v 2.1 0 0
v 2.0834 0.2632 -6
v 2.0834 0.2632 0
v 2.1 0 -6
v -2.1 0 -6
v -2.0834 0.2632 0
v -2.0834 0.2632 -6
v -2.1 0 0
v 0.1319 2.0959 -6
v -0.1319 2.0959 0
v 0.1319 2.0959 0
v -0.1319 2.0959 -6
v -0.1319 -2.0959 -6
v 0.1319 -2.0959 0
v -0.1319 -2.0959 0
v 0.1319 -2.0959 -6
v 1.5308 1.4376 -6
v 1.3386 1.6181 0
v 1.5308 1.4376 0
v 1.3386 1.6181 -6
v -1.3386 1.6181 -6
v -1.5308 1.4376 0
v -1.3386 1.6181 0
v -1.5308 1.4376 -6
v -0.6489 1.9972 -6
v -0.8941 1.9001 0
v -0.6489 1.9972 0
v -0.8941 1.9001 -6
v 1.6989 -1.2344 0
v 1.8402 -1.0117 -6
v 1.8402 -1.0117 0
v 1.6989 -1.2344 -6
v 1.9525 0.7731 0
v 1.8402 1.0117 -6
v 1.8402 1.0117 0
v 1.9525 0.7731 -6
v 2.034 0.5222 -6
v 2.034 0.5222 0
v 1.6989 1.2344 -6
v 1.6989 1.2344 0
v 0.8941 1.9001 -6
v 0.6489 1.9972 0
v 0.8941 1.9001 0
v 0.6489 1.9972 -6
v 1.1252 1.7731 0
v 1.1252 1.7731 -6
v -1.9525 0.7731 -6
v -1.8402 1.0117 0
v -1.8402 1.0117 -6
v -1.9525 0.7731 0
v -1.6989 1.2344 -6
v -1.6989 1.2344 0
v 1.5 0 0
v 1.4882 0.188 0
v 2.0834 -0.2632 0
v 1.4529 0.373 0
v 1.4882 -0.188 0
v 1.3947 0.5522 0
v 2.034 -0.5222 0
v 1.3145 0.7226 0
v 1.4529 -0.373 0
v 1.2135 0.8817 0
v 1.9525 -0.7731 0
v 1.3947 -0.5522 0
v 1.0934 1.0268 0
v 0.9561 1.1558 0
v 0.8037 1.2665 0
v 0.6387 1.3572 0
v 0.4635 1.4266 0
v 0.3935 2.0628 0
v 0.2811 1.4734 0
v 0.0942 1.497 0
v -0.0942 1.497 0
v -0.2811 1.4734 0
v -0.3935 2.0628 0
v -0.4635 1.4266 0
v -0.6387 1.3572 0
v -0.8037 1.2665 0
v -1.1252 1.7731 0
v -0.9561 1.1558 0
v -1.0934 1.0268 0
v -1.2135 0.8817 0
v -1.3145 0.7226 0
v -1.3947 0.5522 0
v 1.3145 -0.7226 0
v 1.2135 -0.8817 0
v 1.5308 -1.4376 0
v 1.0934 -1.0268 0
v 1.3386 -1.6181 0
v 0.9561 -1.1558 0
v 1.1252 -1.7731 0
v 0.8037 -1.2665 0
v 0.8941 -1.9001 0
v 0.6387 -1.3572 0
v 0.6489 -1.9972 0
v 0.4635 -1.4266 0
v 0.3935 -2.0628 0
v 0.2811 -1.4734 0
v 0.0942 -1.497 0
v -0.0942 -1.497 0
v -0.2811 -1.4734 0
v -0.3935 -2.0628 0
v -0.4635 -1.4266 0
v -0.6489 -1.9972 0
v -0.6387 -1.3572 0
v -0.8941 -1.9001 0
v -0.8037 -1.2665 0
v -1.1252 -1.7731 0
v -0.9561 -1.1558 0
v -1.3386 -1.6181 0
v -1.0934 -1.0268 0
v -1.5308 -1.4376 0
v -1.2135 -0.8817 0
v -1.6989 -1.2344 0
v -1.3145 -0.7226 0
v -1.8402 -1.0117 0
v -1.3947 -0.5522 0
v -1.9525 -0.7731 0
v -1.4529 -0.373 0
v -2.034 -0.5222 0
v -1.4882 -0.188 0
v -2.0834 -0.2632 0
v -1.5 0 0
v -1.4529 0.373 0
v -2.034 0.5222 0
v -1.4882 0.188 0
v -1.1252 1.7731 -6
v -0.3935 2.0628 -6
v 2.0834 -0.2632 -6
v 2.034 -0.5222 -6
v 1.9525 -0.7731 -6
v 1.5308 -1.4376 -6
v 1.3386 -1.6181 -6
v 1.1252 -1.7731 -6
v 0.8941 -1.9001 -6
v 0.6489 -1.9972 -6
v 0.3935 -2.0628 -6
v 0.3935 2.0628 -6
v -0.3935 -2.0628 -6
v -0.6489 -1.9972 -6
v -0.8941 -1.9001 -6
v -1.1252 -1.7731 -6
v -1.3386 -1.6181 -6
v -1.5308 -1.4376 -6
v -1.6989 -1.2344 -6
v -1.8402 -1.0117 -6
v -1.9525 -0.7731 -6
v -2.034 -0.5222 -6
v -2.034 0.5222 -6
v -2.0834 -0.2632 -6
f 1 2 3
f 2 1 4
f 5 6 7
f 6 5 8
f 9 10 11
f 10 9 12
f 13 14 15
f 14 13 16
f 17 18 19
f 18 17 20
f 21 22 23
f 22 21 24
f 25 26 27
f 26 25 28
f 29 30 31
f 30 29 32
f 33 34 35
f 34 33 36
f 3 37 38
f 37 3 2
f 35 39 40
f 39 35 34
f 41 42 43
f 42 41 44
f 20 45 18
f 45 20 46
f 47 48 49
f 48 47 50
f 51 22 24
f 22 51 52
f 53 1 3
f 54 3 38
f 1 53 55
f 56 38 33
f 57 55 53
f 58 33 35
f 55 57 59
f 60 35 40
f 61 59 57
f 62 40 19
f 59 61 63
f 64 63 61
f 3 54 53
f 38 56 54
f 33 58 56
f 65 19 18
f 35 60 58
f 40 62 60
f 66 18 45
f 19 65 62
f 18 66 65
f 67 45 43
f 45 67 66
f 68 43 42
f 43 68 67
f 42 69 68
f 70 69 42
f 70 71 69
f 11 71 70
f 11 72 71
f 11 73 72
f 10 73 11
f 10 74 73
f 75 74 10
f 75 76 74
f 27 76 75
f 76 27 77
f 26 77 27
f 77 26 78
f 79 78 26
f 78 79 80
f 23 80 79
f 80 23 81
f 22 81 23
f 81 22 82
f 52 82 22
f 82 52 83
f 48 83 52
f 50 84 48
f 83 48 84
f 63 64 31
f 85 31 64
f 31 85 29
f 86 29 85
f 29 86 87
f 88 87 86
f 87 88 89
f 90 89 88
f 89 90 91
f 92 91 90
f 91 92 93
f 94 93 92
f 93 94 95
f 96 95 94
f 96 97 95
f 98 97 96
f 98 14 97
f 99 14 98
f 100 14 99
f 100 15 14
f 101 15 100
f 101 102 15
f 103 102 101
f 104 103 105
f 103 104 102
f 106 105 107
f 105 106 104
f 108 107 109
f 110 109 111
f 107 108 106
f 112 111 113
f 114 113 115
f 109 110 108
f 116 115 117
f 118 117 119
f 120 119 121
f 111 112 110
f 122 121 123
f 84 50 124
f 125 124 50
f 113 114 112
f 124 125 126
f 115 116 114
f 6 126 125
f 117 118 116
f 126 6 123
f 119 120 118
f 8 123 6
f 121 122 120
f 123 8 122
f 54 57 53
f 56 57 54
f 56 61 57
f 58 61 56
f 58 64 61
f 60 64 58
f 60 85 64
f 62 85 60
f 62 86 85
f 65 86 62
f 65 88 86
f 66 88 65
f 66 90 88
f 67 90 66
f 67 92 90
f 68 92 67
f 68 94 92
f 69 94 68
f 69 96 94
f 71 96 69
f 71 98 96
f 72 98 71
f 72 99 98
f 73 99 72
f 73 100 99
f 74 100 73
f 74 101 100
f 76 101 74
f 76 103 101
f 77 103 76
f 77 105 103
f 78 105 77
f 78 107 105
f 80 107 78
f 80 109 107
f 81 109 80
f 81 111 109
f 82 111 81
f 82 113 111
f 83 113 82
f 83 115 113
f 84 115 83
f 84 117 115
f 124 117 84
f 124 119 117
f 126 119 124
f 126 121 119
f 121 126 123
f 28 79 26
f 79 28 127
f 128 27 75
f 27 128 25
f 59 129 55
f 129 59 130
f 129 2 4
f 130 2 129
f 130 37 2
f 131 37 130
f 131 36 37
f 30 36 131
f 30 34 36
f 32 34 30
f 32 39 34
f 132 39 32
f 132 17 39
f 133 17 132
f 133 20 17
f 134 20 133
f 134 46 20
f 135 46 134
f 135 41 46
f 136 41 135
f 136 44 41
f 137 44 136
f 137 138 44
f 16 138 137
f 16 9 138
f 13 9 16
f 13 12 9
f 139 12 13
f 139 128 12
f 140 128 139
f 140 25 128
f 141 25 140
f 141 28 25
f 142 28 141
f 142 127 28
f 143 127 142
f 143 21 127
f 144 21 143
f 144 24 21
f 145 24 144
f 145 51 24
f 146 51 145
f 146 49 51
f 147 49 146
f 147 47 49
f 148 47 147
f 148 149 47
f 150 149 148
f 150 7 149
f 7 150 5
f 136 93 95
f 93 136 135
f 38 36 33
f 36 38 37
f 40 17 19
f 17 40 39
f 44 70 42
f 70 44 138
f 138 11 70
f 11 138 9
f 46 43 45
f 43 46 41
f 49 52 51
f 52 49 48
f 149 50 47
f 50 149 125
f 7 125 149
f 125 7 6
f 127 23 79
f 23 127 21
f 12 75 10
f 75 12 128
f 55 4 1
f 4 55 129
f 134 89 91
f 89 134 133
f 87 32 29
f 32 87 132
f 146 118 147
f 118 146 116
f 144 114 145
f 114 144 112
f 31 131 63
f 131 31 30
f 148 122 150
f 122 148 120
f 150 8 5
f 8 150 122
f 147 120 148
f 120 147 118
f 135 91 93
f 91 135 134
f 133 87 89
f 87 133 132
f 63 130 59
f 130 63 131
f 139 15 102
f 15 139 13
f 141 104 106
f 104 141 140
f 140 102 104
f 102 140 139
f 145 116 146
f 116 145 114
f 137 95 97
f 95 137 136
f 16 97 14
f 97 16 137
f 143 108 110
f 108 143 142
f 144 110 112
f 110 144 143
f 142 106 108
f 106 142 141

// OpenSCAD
$fn = 50;


difference() {
	union() {
		translate(v = [0, 0, -6.0000000000]) {
			cylinder(h = 6, r = 2.1000000000);
		}
		translate(v = [0, 0, -6.0000000000]) {
			cylinder(h = 6, r = 2.1000000000);
		}
		translate(v = [0, 0, -6.0000000000]) {
			cylinder(h = 6, r = 2.1000000000);
		}
	}
	union() {
		cylinder(h = 100, r = 1.5000000000);
	}
}
